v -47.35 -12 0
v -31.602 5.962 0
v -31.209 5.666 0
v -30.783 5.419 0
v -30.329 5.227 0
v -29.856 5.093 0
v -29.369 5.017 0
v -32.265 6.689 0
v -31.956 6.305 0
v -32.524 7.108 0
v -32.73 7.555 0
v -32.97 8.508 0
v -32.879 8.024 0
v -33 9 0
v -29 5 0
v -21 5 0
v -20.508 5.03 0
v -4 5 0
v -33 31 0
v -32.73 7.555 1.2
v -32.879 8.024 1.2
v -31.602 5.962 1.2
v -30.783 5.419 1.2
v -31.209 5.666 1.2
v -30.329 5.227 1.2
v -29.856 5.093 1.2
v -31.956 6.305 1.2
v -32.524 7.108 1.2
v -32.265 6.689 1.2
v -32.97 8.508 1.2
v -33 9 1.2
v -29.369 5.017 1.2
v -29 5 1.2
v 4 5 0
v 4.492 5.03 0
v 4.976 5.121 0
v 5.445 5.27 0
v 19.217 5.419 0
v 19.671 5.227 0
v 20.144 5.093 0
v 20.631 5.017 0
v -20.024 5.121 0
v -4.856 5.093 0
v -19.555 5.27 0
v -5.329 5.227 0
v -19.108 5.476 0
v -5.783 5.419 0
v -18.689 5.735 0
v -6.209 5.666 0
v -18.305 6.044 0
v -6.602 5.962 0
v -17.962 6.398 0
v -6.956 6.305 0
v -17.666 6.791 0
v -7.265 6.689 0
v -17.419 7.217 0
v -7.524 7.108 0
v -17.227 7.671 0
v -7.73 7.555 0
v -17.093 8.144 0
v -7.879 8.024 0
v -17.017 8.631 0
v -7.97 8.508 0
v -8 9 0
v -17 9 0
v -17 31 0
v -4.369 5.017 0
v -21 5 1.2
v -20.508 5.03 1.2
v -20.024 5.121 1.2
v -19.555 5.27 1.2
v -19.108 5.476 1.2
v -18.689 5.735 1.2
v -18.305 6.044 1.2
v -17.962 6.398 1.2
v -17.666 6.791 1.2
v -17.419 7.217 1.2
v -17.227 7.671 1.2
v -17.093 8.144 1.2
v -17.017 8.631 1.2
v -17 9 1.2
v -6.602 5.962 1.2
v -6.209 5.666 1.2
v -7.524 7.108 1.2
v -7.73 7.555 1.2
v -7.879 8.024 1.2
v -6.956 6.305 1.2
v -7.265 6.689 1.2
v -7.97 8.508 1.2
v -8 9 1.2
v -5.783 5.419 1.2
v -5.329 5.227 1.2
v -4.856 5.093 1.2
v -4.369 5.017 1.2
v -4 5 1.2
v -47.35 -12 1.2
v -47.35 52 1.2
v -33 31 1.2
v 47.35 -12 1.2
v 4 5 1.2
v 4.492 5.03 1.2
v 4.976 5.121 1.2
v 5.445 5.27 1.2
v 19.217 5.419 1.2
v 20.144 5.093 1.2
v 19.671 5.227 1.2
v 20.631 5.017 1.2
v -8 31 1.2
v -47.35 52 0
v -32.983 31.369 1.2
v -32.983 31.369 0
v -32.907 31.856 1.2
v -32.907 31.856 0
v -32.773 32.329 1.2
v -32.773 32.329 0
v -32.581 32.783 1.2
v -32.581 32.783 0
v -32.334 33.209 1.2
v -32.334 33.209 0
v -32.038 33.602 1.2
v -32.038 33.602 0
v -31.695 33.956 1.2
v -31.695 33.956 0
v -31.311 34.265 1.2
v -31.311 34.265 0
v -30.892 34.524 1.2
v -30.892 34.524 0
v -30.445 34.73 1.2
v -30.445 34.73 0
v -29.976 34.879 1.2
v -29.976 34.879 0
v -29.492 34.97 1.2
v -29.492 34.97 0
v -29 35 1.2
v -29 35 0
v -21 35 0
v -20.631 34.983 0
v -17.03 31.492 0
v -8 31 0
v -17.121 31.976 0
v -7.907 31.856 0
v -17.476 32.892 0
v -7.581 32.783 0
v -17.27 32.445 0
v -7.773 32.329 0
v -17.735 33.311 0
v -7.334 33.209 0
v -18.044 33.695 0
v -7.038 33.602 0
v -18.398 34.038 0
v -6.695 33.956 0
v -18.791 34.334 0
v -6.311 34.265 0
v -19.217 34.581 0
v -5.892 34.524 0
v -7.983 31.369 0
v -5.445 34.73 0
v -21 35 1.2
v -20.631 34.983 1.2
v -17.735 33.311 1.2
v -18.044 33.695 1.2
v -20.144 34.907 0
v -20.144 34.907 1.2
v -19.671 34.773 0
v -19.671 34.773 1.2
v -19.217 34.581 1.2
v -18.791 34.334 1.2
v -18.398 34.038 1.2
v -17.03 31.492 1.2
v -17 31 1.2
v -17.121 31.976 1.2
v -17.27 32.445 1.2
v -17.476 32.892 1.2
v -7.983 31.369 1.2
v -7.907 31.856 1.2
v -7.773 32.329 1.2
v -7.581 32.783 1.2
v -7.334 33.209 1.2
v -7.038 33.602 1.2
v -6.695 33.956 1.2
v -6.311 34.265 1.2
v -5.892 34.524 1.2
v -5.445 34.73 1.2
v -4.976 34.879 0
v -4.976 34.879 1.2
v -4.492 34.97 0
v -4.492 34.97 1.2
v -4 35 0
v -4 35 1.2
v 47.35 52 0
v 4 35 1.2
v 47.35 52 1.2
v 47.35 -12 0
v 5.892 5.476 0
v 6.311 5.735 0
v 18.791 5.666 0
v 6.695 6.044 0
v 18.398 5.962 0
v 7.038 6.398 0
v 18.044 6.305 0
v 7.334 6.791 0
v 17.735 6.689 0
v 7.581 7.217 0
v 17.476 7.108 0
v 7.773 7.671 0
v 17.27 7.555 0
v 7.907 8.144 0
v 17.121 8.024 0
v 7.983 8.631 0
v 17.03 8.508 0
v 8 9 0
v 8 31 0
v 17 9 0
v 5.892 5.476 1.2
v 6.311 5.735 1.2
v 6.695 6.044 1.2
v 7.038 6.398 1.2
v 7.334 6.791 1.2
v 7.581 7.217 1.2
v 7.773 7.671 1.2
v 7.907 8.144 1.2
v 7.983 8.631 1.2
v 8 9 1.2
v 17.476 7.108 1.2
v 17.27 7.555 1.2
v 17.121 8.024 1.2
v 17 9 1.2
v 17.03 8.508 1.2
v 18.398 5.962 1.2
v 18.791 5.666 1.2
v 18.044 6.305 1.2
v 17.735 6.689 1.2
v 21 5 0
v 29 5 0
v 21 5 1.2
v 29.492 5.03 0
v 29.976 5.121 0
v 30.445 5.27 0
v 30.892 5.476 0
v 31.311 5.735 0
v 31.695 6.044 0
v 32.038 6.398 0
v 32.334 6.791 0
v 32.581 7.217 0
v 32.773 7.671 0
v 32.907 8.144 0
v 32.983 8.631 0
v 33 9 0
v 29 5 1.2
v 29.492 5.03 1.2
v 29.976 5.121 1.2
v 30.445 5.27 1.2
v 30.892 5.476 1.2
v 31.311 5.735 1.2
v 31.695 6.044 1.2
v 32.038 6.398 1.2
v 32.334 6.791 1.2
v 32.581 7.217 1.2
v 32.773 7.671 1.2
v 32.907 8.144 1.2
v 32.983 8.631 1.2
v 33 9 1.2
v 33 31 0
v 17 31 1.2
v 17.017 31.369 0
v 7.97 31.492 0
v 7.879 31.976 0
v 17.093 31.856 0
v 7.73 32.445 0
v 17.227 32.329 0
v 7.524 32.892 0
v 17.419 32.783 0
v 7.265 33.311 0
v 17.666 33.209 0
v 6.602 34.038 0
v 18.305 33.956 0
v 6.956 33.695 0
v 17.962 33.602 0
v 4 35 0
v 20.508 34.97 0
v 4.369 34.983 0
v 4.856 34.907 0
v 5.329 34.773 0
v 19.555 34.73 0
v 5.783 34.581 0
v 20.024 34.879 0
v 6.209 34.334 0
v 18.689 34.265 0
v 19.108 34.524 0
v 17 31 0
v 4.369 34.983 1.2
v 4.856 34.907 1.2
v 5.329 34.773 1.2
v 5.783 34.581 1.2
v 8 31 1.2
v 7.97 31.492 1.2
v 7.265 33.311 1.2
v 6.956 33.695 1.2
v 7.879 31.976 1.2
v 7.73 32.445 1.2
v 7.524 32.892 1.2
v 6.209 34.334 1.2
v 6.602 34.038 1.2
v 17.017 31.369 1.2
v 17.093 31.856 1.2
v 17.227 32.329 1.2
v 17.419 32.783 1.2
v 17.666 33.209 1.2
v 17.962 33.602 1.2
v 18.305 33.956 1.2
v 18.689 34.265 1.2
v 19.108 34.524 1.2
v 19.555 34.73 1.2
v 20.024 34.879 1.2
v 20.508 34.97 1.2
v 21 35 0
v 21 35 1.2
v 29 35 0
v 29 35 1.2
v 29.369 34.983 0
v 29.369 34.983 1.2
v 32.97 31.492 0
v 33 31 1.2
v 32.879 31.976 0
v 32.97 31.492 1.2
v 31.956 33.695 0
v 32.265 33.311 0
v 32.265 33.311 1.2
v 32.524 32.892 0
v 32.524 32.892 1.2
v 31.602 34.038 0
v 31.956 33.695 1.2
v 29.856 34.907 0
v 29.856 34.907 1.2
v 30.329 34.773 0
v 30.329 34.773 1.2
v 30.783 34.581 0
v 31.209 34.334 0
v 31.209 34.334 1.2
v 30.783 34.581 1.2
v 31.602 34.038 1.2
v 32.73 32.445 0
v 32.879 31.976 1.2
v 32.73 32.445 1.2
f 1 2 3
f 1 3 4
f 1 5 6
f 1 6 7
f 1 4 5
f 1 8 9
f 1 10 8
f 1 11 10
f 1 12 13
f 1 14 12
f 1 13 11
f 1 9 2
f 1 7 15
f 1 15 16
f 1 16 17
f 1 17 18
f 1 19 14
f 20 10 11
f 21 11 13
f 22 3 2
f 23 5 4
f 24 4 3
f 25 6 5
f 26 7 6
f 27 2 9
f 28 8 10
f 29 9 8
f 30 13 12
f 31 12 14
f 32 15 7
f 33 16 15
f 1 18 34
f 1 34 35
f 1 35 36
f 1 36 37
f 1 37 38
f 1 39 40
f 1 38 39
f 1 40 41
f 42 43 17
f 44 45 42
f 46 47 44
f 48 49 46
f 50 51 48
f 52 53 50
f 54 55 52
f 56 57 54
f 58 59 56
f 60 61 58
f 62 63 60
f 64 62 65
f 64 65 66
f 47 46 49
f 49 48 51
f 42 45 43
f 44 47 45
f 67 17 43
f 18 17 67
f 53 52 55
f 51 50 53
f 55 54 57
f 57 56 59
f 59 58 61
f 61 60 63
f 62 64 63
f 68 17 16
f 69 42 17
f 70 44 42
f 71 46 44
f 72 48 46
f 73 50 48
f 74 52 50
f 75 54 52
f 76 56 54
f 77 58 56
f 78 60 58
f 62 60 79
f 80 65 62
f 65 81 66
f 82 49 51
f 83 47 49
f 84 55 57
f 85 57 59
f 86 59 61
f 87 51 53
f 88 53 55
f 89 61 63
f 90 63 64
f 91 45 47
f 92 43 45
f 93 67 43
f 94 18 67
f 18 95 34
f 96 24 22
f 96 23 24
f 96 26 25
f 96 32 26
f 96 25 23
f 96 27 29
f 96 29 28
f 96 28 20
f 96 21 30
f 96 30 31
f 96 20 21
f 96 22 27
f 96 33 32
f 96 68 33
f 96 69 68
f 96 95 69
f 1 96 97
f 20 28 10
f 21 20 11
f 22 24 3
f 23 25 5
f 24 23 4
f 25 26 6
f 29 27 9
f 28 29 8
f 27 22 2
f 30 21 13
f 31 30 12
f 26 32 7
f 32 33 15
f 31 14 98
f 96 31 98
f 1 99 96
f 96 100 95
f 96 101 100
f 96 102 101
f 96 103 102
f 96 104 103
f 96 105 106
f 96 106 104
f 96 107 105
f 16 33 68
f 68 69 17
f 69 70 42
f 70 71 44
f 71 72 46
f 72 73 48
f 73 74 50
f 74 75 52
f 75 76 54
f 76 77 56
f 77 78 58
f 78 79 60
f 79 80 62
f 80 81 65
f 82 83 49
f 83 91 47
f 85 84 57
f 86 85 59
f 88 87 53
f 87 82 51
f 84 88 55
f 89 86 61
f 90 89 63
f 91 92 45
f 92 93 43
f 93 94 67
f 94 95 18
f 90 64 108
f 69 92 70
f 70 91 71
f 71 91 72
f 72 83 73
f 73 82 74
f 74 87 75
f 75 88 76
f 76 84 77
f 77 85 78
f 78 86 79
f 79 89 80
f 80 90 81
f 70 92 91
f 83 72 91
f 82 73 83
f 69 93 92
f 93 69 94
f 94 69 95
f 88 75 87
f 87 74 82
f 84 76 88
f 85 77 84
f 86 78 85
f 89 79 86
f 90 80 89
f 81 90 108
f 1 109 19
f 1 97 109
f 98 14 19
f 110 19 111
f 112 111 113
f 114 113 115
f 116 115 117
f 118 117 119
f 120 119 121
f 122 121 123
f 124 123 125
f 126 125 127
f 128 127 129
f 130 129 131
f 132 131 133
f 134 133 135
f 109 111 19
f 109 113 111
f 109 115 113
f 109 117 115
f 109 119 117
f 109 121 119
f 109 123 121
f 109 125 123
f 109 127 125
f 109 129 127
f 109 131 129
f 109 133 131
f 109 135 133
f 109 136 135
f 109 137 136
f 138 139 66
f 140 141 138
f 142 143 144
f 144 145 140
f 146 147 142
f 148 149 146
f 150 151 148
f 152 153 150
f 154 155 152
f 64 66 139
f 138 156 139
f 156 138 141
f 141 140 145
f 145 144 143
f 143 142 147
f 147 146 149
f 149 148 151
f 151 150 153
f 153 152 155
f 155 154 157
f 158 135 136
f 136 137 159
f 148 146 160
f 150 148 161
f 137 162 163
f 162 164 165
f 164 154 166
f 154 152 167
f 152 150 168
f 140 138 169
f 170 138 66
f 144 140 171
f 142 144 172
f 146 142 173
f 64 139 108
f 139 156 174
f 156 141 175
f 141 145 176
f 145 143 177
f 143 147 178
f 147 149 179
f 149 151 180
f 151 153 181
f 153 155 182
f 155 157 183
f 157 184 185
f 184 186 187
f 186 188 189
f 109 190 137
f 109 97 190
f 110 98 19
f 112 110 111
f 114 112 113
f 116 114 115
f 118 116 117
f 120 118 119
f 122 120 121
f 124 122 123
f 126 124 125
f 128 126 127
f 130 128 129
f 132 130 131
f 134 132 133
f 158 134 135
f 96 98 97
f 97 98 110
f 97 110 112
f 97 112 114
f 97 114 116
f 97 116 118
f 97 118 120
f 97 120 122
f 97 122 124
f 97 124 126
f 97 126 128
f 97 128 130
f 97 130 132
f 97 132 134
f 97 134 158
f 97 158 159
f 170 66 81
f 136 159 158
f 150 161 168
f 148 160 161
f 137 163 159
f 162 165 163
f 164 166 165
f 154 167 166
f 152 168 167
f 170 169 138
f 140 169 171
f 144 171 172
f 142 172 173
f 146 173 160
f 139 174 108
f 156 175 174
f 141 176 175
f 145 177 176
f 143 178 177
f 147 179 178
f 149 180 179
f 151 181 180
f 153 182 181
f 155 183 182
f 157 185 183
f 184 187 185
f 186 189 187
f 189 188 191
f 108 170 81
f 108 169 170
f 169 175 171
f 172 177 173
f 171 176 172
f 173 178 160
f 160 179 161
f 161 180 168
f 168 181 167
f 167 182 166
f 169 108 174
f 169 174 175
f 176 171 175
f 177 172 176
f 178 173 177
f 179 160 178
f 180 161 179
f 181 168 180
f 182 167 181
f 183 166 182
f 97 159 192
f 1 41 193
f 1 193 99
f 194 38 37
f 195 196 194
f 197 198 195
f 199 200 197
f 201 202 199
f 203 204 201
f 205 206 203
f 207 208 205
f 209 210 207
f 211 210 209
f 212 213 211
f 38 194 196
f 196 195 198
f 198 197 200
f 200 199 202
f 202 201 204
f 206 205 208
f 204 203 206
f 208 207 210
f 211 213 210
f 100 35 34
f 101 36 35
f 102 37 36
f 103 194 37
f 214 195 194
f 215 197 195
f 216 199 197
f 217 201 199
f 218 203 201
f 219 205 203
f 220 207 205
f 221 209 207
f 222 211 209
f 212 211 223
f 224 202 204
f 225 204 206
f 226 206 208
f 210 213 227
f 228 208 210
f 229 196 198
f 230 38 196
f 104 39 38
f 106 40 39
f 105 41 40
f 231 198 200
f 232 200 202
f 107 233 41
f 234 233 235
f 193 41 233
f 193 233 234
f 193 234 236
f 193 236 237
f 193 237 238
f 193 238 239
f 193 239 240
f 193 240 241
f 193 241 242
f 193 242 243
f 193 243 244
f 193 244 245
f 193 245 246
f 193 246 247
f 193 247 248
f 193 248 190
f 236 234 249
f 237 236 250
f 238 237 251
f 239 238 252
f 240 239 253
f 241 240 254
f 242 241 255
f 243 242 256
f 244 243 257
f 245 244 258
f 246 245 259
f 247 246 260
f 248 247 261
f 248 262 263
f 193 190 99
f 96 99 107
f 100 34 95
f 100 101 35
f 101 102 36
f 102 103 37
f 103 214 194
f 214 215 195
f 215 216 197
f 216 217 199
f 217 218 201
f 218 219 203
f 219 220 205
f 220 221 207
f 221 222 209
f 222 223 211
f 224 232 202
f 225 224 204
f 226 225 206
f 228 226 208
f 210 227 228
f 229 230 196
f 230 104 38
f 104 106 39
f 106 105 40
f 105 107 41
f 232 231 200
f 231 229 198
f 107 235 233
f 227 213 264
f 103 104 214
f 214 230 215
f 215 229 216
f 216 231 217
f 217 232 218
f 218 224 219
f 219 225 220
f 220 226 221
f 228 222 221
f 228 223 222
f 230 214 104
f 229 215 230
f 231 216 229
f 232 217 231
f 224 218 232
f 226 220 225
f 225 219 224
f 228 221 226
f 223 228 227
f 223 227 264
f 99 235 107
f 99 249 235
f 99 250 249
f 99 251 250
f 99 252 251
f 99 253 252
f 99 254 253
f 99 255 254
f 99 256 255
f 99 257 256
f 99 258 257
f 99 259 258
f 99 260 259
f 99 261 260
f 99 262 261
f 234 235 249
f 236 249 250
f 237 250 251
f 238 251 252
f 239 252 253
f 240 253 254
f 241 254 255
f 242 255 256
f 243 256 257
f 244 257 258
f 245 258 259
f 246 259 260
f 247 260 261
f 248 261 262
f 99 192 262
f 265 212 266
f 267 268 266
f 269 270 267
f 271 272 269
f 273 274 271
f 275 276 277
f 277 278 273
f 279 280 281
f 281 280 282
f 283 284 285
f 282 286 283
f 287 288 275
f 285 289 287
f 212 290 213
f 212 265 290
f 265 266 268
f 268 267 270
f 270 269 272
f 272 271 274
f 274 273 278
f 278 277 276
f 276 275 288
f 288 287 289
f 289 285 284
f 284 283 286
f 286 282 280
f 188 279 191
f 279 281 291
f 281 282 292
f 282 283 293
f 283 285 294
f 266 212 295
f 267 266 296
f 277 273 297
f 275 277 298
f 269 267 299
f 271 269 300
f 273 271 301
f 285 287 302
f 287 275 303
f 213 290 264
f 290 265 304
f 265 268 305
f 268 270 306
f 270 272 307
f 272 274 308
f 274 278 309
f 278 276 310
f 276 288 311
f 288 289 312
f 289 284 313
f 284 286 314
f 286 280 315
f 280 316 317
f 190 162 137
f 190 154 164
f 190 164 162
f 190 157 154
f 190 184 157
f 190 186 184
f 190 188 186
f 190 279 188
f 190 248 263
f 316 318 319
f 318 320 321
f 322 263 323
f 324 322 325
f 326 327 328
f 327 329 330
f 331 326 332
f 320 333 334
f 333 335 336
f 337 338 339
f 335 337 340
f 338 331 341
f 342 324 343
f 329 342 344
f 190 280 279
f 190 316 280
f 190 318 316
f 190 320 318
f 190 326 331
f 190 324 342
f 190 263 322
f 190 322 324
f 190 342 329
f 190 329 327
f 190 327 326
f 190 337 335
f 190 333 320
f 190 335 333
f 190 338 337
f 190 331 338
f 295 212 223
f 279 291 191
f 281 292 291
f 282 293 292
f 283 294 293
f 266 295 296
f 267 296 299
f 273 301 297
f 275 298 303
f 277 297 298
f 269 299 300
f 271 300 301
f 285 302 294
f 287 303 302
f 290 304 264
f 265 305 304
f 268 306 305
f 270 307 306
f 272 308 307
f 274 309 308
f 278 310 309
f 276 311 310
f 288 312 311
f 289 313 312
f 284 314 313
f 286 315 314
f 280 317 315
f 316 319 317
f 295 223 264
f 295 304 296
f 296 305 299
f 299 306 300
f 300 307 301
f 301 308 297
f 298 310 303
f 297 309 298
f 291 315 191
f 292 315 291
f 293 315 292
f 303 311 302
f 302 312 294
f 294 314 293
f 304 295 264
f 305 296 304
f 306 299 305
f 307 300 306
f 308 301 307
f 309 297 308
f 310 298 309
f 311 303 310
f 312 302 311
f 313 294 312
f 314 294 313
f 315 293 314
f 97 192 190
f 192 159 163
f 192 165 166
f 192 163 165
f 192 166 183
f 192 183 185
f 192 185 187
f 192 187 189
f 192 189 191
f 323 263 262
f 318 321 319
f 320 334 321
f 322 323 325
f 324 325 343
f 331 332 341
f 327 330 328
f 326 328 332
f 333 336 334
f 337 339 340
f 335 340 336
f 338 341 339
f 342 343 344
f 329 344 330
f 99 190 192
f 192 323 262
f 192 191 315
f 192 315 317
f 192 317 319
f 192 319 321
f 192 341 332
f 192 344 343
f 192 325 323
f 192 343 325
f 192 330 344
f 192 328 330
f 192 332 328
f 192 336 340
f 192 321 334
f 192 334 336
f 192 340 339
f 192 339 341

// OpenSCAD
// file: lib/lib.scad
// Shared helpers. Include AFTER params.scad (needs TOL, M3_* etc.).
$fa = 4; $fs = 0.5;

module rrect(size, r) {            // 2D rounded rectangle, centred
    r2 = min(r, min(size[0], size[1]) / 2 - 0.001);
    offset(r = r2) square([size[0] - 2 * r2, size[1] - 2 * r2], center = true);
}
module rbox(size, r, center_xy = true) {   // box with rounded vertical edges
    translate(center_xy ? [0, 0, 0] : [size[0] / 2, size[1] / 2, 0])
        linear_extrude(size[2]) rrect([size[0], size[1]], r);
}
module rbox_at(x0, x1, y0, y1, z0, z1, r = 0.01) {
    translate([(x0 + x1) / 2, (y0 + y1) / 2, z0]) rbox([x1 - x0, y1 - y0, z1 - z0], r);
}
module box_at(x0, x1, y0, y1, z0, z1) { translate([x0, y0, z0]) cube([x1 - x0, y1 - y0, z1 - z0]); }

module ring(ro, ri, h) { difference() { cylinder(r = ro, h = h); translate([0, 0, -1]) cylinder(r = ri, h = h + 2); } }
module ring_sector(ro, ri, h, a0, a1) {
    intersection() {
        ring(ro, ri, h);
        linear_extrude(h) polygon(concat([[0, 0]], [for (a = [a0 : (a1 - a0) / 24 : a1]) 2 * ro * [cos(a), sin(a)]]));
    }
}
// teardrop hole along an axis lying horizontal (axis = Y after rotation), printable w/o support
module teardrop2d(d) { union() { circle(d = d); rotate(45) square(d / 2); } }
// vertical heat-set insert hole, opening at z=0 going +z (depth l)
module insert_hole(l = M3_INSERT_L) { translate([0, 0, -EPS]) cylinder(d = M3_INSERT_D, h = l + EPS); }
module m3_clear(l) { translate([0, 0, -EPS]) cylinder(d = M3_CLEAR, h = l + 2 * EPS); }
module m3_csk(l) {  // countersunk clearance from z=0 upward, head at z=0 side
    translate([0, 0, -EPS]) { cylinder(d = M3_CLEAR, h = l + 2 * EPS); cylinder(d1 = 6.4, d2 = M3_CLEAR, h = 1.7); }
}
module card2d() { rrect([CARD_L, CARD_W], CARD_R); }
module card_at(cy, z) { translate([0, cy, z]) linear_extrude(CARD_T) card2d(); }

// ---- gears ----
function _inv(a) = tan(a) - a * PI_ / 180;           // involute function, a in deg
function _invpt(rb, r, ang0, s) = let(al = acos(rb / r), th = ang0 - s * (_inv(al) * 180 / PI_)) [r * cos(th), r * sin(th)];
module involute_gear2d(m, z, pa = 20, clearance = 0.05) {
    rp = m * z / 2; rb = rp * cos(pa); ra = rp + m - clearance; rf = rp - 1.25 * m;
    half = 90 / z + _inv(pa) * 180 / PI_;            // tooth half-angle at base (deg)
    n = 8;
    rs = [for (i = [0 : n]) max(rb, rf) + (ra - max(rb, rf)) * i / n];
    union() {
        circle(r = rf, $fn = z * 4);
        for (k = [0 : z - 1]) rotate(k * 360 / z) polygon(concat(
            [[rf * cos(-half), rf * sin(-half)]],
            [for (r = rs) let(p = _invpt(rb, r, half, 1)) [p[0], -p[1]]],
            [for (i = [n : -1 : 0]) _invpt(rb, rs[i], half, 1)],
            [[rf * cos(half), rf * sin(half)]]));
    }
}
// straight gear rack (2D in XY: teeth along +x, pointing -y, pitch line at y=0)
module gear_rack2d(m, len, back = 3) {
    p = PI_ * m; ad = m; de = 1.25 * m; t = tan(20);
    n = ceil(len / p) + 1;
    intersection() {
        union() {
            translate([0, de]) square([len, back]);
            for (i = [0 : n]) translate([i * p - p / 4, 0]) polygon([
                [-(p / 4 + de * t), de + 0.01], [p / 4 + de * t + 0.01, de + 0.01],
                [p / 4 - ad * t, -ad], [-(p / 4 - ad * t), -ad] ]);
        }
        translate([0, -ad - 1]) square([len, ad + de + back + 2]);
    }
}
// GT2 belt-tooth profile ring (teeth outward), 2D
module gt2_ring2d(n, r_land, ri) {
    union() {
        difference() { circle(r = r_land + 0.01, $fn = n * 2); circle(r = ri, $fn = n * 2); }
        for (k = [0 : n - 1]) rotate(k * 360 / n)
            translate([r_land, 0]) hull() { translate([-0.2, 0]) square([0.2, 1.0], center = true); translate([0.25, 0]) circle(r = 0.5, $fn = 12); }
    }
}
// main file
// Rack bottom plate (RACK_CAP thick, card 0 rests on it), glued into the comb rebates.
// Print: flat.
include <params.scad>
include <lib/lib.scad>
module rack_bottom_plate() translate([0, 0, RACK_Z_MIN]) difference() {
    box_at(-COMB_IN - PLATE_REBATE + 0.1, COMB_IN + PLATE_REBATE - 0.1, RACK_Y0, RACK_Y1, 0, RACK_CAP);
    for (x = [-25, 0, 25]) translate([x, RACK_YC, -1]) linear_extrude(5) rrect([16, 30], 4);   // lightening, keeps card support
}
module rack_bottom_plate_print() translate([0, 0, -RACK_Z_MIN]) rack_bottom_plate();
rack_bottom_plate_print();
